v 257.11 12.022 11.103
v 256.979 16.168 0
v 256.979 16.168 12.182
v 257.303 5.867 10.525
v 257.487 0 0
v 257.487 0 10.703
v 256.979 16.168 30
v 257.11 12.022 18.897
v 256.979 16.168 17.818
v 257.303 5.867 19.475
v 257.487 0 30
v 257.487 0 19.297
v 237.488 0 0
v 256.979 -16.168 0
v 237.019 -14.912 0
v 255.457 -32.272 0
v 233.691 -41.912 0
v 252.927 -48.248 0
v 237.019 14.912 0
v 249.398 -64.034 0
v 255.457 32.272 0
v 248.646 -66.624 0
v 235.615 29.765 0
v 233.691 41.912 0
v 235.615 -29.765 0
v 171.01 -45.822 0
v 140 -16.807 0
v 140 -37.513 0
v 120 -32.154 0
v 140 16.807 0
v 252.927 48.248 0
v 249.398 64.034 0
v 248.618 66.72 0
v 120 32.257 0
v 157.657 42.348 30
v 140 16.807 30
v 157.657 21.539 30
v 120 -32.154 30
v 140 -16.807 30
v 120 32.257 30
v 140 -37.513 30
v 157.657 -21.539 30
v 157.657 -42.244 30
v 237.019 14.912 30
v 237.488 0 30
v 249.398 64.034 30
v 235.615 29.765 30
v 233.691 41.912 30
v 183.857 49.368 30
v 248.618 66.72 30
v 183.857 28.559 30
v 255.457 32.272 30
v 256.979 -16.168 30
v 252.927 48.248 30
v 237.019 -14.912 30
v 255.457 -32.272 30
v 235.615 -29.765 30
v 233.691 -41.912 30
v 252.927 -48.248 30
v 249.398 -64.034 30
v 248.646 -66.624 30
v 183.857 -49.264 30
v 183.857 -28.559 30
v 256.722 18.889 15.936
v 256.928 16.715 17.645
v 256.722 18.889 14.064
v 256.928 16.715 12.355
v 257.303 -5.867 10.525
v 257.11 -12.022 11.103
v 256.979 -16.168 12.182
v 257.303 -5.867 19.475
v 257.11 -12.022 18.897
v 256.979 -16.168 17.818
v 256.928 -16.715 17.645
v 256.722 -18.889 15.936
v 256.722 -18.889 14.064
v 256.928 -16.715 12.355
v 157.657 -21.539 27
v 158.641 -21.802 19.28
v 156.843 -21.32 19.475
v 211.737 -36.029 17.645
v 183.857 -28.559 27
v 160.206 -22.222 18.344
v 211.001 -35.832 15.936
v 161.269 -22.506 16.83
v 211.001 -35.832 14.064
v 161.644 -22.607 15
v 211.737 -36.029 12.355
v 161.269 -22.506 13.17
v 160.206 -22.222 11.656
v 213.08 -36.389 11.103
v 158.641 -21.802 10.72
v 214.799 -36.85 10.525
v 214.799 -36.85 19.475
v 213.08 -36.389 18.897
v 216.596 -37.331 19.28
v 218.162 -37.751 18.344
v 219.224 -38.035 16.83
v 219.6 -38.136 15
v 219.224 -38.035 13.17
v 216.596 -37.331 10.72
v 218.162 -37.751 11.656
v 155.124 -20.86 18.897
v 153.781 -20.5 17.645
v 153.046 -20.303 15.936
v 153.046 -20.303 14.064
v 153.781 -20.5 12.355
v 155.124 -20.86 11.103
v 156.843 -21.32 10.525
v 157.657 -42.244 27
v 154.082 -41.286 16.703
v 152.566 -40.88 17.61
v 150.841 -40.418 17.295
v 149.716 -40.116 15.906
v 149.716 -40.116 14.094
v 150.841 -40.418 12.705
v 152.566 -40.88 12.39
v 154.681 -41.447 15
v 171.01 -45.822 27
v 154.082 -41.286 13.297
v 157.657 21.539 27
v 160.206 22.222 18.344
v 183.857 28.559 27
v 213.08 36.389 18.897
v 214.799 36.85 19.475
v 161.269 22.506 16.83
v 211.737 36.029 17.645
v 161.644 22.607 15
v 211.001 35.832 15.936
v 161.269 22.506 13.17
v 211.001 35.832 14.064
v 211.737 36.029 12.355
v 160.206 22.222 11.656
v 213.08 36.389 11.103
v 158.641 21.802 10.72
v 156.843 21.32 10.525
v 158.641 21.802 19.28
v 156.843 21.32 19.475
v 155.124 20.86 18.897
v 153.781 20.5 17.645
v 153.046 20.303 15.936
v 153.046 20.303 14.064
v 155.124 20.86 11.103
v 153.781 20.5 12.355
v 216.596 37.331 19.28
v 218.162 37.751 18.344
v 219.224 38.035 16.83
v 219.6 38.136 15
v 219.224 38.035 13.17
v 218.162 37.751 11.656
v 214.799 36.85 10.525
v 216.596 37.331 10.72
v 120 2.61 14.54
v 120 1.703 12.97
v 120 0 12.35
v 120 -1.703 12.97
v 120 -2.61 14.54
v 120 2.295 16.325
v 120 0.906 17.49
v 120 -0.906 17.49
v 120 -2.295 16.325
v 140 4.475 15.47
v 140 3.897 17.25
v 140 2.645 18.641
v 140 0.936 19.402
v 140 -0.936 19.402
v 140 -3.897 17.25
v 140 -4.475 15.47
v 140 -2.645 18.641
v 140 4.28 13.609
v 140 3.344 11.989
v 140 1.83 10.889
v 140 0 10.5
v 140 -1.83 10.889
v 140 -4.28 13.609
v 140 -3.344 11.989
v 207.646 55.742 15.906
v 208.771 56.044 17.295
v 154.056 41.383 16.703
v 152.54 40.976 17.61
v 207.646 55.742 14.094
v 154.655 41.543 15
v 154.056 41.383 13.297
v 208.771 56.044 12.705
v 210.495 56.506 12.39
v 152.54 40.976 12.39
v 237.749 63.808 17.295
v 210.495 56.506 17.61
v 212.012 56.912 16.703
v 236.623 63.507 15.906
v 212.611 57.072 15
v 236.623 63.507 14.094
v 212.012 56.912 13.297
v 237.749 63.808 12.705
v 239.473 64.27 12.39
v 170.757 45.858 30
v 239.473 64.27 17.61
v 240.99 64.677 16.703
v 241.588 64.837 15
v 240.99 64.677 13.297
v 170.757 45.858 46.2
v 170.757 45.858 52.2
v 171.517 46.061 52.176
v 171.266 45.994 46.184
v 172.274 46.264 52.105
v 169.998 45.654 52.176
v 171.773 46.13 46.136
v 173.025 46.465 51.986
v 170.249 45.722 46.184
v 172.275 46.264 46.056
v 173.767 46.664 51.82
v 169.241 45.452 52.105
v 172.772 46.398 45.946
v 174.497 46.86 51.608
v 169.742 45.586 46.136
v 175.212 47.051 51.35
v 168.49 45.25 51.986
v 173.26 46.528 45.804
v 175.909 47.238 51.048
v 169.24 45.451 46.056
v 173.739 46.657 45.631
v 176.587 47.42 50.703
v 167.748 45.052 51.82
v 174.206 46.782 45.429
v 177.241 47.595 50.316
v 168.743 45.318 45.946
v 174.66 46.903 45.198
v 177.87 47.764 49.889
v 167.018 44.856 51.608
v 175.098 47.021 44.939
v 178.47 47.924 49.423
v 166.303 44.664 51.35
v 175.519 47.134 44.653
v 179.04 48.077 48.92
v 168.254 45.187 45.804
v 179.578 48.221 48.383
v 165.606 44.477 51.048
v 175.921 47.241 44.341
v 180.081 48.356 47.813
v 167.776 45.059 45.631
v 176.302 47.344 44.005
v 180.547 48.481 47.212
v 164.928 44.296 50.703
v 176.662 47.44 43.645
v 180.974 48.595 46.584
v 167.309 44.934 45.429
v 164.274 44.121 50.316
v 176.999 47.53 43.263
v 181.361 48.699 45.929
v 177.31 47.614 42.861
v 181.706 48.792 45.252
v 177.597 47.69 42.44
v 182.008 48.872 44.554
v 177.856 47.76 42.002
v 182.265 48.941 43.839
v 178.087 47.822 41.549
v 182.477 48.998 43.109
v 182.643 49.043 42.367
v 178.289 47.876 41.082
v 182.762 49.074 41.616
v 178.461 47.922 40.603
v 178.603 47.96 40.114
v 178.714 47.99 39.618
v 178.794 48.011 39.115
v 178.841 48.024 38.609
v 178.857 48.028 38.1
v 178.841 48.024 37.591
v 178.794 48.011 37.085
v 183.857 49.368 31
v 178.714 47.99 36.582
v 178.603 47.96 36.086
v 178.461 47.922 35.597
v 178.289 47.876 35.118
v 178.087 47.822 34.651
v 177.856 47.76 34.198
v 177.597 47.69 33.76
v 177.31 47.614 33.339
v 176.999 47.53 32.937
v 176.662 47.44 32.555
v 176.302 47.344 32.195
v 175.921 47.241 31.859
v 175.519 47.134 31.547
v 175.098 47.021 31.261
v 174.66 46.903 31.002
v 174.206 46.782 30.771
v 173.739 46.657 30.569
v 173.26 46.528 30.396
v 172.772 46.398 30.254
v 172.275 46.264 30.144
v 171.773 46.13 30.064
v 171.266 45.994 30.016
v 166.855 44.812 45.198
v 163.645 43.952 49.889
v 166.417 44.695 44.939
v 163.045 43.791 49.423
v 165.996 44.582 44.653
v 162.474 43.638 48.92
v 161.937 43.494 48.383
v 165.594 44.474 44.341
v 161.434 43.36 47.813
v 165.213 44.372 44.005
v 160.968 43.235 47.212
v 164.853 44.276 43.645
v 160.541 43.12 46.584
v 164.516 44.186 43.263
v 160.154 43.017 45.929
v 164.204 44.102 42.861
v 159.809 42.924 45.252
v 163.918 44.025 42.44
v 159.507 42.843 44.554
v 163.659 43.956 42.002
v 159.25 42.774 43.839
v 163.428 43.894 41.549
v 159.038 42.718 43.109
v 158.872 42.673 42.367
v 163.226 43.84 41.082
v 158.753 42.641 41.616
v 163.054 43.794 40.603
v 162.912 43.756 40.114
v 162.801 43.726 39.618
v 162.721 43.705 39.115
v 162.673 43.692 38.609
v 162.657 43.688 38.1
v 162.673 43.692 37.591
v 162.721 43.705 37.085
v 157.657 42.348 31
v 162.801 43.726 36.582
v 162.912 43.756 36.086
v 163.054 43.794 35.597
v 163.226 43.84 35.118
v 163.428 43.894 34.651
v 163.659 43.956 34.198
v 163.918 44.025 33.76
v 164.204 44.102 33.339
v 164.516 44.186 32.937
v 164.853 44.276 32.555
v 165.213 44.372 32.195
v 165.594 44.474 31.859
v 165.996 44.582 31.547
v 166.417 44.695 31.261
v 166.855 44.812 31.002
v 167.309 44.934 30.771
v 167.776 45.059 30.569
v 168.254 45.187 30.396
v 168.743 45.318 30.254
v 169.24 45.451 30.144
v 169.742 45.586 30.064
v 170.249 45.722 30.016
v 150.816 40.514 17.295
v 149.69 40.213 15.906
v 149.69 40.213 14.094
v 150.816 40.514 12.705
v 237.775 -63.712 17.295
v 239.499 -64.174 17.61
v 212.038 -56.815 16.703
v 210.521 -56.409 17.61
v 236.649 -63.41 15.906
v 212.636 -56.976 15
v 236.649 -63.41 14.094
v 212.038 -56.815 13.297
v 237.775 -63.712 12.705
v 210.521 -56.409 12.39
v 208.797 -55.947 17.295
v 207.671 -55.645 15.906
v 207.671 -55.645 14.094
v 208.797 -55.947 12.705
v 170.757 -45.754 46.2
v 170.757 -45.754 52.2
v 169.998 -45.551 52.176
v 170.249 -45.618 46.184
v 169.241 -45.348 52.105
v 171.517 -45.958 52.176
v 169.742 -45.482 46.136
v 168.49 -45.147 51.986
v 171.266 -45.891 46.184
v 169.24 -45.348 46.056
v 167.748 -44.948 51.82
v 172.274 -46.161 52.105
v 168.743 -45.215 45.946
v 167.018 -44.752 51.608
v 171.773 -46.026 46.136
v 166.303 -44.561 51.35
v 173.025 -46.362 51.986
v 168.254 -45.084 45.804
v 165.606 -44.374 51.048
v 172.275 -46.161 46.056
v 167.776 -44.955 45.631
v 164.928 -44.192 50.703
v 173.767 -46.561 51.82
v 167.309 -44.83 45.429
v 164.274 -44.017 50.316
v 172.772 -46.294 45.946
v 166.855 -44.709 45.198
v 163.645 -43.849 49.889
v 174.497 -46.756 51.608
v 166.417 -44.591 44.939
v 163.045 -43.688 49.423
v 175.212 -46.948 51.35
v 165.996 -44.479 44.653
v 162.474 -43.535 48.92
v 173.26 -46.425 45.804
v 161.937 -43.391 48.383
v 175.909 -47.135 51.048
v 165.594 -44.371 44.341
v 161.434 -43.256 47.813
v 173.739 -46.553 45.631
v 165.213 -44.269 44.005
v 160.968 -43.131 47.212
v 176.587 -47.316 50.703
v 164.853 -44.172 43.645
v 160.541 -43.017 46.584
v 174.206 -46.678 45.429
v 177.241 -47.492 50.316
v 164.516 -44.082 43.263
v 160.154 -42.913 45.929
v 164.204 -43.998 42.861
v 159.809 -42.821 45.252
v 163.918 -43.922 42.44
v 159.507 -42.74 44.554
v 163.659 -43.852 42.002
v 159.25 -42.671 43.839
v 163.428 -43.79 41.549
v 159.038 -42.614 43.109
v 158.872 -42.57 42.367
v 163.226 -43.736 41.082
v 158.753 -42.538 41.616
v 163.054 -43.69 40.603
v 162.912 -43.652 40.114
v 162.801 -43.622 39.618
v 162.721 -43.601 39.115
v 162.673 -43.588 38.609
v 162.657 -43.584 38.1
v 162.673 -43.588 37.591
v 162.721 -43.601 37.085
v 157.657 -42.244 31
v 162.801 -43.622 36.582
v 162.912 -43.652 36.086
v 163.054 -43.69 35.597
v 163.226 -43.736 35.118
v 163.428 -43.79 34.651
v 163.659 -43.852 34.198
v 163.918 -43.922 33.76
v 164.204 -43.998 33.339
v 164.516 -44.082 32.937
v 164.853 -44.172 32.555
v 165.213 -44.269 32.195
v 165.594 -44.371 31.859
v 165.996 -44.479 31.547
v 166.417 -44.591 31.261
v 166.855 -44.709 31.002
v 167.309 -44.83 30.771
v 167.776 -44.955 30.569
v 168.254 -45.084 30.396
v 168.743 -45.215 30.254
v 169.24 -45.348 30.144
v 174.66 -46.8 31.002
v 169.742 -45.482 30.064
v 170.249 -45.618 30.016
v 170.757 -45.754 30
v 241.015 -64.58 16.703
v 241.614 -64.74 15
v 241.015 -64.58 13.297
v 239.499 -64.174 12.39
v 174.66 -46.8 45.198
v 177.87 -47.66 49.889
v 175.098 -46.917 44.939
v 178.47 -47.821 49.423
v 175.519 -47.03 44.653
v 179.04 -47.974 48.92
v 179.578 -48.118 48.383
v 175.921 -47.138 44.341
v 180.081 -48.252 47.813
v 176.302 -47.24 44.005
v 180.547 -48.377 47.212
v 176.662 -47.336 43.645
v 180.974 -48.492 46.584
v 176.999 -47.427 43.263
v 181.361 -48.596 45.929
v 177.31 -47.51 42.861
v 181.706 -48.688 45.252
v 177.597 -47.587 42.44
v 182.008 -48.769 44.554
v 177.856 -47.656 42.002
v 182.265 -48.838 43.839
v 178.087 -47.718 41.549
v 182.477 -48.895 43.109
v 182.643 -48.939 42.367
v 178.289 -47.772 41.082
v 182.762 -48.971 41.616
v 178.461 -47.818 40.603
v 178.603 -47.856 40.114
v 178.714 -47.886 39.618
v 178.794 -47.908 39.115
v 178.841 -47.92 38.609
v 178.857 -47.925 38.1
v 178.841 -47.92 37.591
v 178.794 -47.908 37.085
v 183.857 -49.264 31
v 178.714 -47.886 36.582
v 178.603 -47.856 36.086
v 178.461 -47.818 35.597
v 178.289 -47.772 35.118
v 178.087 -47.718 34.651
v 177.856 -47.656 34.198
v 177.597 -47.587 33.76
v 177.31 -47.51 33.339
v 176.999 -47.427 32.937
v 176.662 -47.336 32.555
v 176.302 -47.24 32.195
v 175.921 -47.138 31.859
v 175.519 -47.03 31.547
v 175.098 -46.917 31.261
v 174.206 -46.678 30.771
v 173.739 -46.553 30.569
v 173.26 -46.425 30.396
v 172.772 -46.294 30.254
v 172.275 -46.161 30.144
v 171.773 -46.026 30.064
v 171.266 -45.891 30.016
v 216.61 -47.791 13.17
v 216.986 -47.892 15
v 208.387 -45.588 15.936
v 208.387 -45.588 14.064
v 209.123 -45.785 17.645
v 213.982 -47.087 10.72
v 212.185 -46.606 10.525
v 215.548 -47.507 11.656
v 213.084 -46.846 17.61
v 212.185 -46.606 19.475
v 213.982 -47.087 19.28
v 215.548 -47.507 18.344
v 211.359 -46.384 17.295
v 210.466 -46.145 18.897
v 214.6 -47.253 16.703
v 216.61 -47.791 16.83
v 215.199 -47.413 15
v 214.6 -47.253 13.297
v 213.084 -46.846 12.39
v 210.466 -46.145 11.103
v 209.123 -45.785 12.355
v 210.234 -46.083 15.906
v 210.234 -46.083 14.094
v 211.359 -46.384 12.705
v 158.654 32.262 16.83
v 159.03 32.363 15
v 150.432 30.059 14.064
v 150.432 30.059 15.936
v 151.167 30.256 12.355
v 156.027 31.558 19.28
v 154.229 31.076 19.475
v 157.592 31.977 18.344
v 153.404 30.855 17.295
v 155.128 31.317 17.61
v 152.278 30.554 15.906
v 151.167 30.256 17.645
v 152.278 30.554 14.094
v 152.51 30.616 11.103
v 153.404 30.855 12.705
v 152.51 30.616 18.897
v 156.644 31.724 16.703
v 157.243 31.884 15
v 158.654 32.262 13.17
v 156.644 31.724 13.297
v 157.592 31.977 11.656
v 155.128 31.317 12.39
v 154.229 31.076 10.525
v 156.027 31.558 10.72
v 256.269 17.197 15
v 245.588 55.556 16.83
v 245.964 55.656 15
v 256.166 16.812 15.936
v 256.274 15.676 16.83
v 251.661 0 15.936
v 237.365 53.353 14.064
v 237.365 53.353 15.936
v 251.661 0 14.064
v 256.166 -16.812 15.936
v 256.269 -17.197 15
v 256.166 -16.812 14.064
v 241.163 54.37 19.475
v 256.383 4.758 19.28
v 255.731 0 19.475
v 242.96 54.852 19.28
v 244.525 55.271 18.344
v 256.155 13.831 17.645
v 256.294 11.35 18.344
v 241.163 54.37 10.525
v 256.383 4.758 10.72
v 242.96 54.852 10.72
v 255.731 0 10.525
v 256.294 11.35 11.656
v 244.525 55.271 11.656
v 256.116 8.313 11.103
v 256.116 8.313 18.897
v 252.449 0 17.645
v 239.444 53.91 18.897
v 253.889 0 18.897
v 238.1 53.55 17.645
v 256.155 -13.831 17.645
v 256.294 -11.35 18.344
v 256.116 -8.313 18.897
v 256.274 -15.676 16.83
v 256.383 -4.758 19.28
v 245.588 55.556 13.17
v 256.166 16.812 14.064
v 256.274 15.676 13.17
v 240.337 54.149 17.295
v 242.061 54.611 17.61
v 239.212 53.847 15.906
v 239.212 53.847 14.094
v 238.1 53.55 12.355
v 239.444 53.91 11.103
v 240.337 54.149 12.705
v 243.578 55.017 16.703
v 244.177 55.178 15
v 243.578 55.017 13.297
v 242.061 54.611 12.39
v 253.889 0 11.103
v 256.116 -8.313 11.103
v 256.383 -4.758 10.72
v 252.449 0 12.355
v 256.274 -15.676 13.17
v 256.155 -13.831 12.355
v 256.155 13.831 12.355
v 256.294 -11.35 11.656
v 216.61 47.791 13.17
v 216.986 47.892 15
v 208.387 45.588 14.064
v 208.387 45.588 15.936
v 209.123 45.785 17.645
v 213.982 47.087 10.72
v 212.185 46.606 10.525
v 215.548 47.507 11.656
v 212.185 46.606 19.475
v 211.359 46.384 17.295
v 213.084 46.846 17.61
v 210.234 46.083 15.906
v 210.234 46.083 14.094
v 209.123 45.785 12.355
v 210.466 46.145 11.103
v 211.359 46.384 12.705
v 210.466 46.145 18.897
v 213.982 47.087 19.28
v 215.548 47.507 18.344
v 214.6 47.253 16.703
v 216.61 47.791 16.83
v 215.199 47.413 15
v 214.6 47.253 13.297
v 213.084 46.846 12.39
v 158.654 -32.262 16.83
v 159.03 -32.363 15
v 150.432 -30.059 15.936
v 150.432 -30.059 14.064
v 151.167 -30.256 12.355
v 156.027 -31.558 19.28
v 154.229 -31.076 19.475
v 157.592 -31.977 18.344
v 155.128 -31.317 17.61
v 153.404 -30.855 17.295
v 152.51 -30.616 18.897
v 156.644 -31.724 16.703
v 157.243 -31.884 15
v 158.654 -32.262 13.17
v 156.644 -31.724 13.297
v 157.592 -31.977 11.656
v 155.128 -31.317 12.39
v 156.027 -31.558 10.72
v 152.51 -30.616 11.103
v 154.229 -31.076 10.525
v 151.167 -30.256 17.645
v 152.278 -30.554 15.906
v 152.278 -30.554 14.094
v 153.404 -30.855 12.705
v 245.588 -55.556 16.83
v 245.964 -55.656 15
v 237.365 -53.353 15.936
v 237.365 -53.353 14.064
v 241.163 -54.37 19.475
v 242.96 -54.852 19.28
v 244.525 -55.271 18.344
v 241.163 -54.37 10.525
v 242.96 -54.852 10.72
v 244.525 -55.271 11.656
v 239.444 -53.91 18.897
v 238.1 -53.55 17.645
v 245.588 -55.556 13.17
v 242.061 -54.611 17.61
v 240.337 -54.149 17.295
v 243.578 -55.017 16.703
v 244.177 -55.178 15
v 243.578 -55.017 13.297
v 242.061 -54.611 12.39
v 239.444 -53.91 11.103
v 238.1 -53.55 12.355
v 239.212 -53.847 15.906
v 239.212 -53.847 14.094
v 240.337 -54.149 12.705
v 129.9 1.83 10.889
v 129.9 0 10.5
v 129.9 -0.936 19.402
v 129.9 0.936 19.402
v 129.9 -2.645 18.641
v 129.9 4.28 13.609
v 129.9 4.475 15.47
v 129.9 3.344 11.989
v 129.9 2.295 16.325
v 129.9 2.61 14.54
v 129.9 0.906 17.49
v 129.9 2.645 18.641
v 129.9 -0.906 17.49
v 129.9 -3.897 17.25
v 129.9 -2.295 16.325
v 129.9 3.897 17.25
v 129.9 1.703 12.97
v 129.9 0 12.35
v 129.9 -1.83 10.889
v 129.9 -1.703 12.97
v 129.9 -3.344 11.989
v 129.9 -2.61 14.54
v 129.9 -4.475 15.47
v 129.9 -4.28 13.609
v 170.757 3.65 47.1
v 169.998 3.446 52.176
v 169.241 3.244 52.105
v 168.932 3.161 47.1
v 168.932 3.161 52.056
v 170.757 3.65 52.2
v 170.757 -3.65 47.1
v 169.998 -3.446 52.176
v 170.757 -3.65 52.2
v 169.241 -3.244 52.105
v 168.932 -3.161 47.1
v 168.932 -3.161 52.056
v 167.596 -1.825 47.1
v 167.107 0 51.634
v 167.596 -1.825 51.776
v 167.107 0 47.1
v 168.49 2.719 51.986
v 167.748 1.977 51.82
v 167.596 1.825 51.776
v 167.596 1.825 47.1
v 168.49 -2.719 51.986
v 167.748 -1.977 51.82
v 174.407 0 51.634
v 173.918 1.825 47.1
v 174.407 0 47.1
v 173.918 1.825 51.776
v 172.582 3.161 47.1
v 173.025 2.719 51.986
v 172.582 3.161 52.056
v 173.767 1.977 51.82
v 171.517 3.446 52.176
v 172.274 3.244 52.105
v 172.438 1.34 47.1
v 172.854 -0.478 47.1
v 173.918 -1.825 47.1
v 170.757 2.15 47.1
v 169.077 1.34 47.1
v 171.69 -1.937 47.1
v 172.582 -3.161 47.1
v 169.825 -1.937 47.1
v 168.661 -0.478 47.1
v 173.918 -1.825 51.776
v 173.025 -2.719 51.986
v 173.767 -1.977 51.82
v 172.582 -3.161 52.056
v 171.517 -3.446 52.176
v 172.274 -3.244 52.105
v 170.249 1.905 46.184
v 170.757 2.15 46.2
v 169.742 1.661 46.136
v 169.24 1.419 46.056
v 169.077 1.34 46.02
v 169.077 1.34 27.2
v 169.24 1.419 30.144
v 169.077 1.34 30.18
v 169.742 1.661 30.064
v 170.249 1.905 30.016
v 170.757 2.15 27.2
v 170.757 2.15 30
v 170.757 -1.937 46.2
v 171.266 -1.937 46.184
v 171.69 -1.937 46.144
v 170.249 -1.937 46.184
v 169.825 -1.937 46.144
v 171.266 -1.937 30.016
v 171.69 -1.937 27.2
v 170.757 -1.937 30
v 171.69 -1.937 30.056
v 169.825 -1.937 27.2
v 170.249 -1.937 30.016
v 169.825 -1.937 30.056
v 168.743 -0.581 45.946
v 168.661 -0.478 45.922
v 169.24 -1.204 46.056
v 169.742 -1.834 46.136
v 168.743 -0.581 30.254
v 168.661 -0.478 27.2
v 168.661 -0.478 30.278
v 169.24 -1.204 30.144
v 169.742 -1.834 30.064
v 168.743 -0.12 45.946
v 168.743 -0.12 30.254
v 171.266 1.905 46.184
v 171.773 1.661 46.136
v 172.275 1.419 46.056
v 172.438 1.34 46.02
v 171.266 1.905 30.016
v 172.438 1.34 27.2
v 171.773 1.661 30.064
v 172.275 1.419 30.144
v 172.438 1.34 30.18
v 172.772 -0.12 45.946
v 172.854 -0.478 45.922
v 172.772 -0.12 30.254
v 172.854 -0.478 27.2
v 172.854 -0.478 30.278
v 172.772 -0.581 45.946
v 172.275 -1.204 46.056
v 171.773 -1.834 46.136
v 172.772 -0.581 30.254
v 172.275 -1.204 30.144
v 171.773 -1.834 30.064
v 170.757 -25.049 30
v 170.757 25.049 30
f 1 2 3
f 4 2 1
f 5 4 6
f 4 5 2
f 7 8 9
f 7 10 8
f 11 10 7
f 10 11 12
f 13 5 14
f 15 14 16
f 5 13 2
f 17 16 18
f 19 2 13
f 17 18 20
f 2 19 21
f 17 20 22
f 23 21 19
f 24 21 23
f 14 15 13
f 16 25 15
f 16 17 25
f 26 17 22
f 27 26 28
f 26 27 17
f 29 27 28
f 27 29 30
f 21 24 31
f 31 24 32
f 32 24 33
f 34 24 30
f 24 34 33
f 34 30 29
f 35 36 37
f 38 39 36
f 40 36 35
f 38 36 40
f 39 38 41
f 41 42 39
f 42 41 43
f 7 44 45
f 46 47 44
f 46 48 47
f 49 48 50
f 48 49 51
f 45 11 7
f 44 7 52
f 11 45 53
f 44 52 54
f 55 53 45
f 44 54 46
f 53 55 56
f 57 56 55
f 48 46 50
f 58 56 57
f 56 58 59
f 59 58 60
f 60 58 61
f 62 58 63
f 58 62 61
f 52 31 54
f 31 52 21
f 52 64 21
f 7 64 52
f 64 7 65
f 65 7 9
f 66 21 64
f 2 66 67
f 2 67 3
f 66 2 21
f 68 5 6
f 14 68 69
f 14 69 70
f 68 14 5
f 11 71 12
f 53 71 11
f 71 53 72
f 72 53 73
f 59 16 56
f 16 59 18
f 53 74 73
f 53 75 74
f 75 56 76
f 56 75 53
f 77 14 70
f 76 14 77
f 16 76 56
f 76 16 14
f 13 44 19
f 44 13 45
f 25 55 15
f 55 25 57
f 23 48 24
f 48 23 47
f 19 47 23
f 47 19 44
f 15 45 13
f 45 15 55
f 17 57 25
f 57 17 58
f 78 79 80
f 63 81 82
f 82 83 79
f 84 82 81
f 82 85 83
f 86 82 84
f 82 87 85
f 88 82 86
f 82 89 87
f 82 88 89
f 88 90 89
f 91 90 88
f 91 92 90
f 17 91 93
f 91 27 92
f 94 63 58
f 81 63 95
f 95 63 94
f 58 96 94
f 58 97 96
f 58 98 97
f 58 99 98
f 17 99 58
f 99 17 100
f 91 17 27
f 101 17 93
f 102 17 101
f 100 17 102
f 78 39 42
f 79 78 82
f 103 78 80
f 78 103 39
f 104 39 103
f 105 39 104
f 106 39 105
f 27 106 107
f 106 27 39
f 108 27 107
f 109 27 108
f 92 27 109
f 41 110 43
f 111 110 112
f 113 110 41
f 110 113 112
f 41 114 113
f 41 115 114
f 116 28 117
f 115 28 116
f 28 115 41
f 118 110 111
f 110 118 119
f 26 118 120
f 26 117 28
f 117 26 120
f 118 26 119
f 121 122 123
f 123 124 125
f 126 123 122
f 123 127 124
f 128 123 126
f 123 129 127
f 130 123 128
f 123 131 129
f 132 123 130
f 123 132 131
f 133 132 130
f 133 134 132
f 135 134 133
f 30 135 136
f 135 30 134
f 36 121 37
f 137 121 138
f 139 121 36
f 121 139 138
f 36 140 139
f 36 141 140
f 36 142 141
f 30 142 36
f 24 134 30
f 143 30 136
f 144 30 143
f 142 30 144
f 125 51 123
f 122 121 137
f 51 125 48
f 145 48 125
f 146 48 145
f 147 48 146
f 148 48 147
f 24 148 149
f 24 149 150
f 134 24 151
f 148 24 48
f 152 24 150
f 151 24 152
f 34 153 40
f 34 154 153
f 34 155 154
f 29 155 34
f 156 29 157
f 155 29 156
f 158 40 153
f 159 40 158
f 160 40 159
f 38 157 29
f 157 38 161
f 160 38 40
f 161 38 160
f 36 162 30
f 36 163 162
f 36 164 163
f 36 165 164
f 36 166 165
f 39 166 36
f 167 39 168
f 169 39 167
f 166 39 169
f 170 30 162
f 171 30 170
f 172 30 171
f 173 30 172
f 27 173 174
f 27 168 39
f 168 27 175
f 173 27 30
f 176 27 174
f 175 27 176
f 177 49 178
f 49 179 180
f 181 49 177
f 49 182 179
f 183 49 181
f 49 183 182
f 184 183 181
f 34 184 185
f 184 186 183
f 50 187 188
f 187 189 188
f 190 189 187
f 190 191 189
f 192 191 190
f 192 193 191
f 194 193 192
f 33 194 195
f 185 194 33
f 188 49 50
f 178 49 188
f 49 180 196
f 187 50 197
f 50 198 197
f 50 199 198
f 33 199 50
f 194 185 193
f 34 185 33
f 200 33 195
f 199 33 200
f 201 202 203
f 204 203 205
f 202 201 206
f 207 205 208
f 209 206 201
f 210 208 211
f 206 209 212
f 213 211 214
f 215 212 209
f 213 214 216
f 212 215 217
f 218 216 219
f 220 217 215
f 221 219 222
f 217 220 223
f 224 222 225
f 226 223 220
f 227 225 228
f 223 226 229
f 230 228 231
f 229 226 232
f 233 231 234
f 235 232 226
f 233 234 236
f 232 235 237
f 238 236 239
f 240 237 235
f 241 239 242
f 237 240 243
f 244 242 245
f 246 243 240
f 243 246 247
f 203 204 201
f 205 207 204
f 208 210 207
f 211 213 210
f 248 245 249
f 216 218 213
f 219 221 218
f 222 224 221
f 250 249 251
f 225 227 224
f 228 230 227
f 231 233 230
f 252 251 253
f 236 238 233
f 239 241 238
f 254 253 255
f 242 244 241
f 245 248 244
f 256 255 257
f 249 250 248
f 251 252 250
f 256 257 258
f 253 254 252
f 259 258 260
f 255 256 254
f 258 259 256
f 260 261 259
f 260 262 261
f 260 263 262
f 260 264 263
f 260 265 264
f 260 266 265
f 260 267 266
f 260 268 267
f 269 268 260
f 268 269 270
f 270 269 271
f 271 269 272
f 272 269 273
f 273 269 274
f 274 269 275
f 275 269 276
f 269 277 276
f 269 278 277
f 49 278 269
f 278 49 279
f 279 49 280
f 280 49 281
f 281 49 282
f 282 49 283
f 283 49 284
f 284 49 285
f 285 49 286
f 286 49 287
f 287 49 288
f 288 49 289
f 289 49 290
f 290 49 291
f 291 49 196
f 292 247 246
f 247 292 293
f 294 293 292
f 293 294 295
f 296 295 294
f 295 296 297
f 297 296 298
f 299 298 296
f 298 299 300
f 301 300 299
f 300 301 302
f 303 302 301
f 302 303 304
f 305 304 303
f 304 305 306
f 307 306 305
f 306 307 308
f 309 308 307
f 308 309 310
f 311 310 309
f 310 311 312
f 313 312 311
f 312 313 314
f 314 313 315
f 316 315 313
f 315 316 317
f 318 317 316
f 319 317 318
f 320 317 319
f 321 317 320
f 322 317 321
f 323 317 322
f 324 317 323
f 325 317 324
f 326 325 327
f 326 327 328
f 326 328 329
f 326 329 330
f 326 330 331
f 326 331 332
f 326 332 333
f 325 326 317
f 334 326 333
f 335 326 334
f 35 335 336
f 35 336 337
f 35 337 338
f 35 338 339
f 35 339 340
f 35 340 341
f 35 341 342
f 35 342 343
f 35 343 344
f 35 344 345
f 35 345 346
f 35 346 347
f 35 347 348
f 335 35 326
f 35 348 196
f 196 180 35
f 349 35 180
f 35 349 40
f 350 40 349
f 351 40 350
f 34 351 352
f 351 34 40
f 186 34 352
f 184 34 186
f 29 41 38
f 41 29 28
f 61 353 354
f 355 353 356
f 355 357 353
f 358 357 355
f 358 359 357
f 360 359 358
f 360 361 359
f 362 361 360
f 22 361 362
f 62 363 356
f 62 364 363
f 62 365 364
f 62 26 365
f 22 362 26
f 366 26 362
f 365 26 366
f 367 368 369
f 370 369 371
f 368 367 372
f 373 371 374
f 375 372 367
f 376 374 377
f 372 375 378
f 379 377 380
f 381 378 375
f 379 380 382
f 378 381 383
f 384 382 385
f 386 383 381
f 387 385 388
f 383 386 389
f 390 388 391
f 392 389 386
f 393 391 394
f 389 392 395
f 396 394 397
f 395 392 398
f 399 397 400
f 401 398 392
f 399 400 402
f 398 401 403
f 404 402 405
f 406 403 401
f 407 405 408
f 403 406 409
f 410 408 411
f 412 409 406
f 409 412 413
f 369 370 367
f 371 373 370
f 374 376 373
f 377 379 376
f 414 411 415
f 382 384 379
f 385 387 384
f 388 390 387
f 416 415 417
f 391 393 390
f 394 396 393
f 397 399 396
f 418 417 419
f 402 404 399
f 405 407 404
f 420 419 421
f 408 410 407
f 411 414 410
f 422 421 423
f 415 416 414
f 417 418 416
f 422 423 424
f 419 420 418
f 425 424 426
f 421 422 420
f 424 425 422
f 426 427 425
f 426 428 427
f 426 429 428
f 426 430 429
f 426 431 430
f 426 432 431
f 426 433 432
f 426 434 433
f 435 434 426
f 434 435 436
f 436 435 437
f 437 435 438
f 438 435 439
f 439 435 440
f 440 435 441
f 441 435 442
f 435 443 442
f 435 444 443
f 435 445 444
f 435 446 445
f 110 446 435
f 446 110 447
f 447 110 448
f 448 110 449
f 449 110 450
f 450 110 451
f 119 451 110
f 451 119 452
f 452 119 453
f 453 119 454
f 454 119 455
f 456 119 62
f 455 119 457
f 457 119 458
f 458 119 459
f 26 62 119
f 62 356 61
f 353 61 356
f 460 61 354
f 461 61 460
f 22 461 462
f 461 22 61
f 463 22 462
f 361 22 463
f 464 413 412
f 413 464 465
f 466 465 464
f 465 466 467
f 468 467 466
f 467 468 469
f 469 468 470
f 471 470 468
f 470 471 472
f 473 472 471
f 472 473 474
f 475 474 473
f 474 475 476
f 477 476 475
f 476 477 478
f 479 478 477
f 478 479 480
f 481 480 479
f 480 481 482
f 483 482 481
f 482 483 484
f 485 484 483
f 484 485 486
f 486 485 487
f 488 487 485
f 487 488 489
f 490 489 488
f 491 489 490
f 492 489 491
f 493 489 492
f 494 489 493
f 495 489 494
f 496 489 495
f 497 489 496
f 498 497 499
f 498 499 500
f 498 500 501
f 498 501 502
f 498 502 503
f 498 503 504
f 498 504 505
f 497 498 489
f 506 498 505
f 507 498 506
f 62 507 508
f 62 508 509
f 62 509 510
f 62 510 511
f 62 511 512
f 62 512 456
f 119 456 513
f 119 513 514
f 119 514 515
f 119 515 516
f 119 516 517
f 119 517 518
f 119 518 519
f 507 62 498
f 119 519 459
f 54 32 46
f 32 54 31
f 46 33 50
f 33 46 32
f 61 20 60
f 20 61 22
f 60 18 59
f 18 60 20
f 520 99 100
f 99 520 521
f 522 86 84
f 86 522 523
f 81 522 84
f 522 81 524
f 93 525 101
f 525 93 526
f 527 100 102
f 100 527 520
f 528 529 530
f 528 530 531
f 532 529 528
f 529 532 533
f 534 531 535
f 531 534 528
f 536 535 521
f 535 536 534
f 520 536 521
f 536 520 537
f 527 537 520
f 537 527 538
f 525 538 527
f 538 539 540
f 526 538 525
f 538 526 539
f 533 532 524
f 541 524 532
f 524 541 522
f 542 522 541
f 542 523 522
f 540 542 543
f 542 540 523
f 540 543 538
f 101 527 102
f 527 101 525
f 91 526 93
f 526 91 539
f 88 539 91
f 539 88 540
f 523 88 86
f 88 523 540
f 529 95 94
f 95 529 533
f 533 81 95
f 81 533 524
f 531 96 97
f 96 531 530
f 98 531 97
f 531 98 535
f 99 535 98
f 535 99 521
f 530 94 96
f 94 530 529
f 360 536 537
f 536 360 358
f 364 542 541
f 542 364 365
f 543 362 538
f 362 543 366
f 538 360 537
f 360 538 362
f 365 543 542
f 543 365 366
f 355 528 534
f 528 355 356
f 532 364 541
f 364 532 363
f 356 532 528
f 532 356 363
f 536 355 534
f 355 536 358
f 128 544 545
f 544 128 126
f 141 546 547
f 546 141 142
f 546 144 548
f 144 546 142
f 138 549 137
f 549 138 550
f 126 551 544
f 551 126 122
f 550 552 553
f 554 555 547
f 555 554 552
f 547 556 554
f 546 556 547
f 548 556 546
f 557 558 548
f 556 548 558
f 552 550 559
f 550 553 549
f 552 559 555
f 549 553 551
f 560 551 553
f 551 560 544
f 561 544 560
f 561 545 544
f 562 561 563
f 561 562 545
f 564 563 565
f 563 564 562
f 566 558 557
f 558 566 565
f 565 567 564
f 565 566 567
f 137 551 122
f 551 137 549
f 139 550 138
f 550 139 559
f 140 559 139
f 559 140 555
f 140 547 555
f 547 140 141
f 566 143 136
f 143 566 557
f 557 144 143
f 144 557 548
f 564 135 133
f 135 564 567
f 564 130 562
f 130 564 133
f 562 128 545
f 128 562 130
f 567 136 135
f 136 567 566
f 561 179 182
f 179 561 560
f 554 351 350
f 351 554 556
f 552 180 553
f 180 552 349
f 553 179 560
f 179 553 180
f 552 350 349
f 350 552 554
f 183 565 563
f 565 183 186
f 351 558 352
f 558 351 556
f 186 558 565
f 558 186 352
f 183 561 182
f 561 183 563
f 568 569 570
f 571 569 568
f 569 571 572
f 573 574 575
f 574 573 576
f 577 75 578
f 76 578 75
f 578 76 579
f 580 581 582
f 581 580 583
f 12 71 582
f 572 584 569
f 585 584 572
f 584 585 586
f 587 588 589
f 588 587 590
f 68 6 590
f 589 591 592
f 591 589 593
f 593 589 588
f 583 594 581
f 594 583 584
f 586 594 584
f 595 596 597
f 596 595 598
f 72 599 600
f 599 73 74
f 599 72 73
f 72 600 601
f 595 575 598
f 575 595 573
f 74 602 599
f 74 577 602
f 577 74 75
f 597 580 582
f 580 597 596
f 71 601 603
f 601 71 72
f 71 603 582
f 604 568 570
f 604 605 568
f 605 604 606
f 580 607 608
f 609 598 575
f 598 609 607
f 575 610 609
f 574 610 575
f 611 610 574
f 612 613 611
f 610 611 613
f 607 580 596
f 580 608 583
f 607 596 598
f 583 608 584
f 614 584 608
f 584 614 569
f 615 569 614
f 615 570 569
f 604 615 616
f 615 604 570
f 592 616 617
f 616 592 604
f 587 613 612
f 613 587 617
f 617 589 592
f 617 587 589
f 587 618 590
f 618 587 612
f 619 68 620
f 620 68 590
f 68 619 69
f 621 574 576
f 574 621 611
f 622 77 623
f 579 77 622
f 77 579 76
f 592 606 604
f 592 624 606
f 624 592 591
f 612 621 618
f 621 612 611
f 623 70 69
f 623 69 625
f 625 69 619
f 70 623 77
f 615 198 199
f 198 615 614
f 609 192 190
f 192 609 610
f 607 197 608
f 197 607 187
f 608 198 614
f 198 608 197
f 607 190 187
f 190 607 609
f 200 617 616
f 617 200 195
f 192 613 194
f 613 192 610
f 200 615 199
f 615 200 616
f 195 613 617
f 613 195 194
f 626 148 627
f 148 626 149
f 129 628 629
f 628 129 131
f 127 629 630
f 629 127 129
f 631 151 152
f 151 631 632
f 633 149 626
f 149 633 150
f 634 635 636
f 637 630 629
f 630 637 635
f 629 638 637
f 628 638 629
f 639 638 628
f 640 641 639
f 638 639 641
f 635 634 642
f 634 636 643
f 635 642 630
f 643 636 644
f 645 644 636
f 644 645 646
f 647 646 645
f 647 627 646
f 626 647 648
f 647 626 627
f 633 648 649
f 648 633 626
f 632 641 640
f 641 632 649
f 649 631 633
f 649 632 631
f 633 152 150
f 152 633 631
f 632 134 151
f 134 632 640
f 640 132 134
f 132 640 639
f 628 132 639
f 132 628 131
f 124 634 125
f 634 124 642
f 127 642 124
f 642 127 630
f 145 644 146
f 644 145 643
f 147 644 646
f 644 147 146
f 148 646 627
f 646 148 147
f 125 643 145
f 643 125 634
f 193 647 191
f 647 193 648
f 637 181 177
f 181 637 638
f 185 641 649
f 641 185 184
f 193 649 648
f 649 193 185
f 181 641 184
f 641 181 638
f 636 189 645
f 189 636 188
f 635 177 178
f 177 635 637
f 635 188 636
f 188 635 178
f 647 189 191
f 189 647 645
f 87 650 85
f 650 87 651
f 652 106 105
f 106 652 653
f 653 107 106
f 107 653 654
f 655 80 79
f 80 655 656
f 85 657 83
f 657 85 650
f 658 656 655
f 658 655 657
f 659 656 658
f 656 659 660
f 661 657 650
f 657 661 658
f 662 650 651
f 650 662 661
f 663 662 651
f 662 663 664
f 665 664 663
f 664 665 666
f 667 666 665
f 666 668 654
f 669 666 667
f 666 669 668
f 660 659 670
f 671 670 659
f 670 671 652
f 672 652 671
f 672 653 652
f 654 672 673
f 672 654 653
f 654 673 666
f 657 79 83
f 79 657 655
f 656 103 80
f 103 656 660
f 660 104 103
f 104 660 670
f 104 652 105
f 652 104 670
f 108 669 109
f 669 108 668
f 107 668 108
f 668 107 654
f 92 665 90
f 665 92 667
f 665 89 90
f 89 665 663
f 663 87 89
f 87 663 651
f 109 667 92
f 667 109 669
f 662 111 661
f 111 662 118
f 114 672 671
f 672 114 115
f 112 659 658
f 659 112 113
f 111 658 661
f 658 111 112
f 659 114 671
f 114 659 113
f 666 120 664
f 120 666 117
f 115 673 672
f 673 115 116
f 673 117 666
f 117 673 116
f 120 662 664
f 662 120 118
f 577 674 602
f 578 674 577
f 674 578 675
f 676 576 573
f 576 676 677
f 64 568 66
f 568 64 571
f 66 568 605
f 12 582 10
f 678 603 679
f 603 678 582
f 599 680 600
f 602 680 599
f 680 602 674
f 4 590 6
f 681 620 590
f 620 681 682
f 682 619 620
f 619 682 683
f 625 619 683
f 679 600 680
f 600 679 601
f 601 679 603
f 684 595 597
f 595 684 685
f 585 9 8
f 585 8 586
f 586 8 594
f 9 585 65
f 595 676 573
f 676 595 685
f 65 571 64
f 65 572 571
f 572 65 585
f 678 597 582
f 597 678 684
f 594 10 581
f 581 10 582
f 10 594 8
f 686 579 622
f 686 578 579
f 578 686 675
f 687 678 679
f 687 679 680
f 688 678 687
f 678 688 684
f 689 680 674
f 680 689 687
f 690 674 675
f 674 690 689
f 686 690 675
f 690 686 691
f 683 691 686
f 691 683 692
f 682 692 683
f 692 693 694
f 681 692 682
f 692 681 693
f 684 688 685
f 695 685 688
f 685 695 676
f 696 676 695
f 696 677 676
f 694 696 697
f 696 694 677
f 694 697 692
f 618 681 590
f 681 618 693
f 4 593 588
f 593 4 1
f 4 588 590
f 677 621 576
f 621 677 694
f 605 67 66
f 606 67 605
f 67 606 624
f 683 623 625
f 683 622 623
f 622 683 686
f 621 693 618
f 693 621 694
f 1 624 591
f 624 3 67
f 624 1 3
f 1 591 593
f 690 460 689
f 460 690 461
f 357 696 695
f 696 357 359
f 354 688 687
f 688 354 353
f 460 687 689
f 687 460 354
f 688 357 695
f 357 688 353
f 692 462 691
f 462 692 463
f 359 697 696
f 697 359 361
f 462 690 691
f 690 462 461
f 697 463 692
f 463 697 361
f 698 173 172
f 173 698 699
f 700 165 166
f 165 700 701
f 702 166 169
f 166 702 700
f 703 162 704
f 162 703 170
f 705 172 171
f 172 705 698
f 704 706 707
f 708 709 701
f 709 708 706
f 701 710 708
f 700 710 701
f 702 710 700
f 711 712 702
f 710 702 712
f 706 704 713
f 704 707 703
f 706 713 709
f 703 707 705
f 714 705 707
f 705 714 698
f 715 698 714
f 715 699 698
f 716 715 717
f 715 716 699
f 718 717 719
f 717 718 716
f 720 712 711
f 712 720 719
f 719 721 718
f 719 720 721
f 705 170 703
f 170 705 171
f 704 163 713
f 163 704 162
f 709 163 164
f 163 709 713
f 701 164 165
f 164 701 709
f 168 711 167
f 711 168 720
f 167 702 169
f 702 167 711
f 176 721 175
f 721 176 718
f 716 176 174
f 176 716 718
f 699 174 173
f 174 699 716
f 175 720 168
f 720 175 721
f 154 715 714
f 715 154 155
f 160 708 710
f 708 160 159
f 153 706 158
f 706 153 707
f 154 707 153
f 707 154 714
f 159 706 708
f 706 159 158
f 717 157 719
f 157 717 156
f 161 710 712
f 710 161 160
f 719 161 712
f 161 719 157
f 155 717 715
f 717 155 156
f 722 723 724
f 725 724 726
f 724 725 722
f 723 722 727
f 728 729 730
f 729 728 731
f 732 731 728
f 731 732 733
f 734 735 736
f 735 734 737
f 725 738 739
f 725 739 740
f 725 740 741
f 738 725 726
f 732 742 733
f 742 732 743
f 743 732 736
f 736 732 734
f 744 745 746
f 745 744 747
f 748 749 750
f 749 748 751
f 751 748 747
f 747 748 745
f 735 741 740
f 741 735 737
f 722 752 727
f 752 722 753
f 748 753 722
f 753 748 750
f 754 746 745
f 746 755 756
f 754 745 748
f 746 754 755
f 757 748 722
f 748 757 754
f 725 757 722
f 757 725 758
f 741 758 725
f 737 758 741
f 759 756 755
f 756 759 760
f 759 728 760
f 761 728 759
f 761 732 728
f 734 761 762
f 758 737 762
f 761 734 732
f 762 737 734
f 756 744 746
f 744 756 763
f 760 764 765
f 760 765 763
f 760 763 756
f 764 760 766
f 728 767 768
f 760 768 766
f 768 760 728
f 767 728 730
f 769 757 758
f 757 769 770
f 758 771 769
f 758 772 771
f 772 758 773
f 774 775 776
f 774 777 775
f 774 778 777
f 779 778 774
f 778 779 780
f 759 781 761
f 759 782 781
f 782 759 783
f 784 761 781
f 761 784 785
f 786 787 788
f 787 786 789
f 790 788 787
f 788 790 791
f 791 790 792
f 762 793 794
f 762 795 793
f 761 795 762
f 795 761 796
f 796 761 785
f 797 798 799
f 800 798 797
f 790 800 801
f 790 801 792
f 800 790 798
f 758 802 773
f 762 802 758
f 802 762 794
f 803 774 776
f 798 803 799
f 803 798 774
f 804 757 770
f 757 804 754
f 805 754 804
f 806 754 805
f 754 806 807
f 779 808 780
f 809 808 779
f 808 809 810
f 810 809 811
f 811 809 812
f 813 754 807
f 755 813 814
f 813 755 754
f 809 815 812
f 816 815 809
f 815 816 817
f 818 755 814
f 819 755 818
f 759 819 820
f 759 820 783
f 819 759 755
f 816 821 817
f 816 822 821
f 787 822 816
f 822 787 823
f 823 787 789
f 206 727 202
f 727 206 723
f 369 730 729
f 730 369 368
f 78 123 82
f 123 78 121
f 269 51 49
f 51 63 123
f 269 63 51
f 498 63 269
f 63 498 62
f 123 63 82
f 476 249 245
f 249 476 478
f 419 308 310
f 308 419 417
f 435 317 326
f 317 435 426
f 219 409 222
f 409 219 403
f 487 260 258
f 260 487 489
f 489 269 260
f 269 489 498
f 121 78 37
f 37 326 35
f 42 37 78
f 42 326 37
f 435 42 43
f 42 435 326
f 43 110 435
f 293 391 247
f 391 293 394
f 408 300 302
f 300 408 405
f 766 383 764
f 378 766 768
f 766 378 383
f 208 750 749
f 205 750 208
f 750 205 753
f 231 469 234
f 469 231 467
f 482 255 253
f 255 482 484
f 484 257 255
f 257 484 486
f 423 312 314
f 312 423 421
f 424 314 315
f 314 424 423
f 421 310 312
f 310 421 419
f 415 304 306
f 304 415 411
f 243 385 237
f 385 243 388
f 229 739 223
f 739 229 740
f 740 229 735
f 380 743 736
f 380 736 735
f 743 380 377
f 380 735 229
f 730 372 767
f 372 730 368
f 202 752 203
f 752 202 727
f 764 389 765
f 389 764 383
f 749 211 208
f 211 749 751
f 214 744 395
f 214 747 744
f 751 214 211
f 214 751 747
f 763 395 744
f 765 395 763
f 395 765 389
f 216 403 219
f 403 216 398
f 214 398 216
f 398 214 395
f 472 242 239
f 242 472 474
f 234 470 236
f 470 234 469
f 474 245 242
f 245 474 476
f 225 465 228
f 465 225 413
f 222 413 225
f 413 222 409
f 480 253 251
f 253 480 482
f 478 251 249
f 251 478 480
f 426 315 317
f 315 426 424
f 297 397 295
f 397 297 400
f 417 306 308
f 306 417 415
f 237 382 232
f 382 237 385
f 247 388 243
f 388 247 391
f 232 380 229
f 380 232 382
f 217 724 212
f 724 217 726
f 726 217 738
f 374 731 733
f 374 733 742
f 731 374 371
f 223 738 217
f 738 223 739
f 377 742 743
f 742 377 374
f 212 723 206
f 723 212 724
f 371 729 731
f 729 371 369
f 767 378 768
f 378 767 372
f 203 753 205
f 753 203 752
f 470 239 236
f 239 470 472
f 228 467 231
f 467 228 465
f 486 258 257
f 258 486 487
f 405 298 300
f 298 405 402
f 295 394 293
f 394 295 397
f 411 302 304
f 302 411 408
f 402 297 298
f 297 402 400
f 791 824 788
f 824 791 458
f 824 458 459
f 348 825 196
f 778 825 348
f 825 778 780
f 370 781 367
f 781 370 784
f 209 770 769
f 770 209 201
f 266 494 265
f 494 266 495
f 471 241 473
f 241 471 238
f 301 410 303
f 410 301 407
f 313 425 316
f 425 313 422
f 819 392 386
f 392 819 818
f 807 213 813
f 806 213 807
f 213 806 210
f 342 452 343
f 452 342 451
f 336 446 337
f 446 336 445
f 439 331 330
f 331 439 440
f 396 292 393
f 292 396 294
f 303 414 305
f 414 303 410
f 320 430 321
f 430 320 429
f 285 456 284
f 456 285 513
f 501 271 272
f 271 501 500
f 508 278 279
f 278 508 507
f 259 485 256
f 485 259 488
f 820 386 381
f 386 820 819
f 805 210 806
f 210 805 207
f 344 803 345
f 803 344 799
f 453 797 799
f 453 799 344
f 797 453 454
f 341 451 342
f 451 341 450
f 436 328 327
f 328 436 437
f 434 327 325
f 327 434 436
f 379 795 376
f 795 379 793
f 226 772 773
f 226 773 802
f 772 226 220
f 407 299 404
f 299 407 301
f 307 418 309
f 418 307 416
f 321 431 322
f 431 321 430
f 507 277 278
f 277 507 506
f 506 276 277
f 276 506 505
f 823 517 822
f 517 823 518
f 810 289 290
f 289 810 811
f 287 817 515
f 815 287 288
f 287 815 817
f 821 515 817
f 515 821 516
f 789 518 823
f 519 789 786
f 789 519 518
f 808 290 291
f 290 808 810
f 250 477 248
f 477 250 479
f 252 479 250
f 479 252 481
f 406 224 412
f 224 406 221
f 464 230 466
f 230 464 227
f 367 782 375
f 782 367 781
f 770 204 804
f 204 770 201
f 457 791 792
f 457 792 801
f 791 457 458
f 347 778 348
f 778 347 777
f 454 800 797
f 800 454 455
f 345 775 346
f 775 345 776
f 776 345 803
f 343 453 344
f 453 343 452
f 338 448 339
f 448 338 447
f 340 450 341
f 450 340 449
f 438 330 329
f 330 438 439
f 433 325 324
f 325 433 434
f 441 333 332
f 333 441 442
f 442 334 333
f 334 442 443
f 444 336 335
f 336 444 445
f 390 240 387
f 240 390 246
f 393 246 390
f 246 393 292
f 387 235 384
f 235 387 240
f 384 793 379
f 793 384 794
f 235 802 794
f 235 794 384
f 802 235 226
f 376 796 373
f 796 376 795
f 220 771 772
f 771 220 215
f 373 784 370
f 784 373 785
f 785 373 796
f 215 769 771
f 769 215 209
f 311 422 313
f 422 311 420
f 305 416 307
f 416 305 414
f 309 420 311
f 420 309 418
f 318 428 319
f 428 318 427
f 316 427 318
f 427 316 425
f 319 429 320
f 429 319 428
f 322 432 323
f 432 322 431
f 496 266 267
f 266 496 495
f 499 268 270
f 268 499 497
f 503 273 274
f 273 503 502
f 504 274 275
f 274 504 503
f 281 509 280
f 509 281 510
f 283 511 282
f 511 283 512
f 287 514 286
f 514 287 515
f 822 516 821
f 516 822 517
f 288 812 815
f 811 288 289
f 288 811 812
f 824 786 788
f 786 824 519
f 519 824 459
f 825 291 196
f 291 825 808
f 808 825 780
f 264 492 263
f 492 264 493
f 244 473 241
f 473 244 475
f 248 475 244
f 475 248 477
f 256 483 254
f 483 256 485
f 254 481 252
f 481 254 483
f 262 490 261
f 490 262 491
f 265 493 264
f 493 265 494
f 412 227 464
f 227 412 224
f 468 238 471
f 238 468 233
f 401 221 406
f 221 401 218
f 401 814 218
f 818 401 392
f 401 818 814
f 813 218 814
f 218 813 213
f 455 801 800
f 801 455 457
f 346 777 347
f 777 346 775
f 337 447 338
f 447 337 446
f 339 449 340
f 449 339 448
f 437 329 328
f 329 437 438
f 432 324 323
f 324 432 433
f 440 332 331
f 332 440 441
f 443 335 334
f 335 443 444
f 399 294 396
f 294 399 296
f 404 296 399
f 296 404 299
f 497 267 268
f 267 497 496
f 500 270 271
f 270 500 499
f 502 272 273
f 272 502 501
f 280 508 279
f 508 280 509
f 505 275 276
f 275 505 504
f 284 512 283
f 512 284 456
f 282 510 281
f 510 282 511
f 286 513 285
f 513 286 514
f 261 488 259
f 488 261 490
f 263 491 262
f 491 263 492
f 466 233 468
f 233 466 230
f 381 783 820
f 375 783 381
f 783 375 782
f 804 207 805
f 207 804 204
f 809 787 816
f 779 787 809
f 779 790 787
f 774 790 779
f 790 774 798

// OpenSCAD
intersection() {
	union() {
		difference() {
			intersection() {
				intersection() {
					union() {
						difference() {
							union() {
								cube(size = 0);
								translate(v = [0, 0, 0]) {
									cylinder($fn = 100, d = 514.9750000000, h = 30);
								}
							}
							translate(v = [0, 0, -0.2000000000]) {
								cylinder($fn = 100, d = 474.9750000000, h = 40.4000000000);
							}
						}
						rotate(a = [0, 0, -15.0000000000]) {
							translate(v = [135.0000000000, 0, 0]) {
								cube(size = [194.9750000000, 20, 30]);
							}
						}
						rotate(a = [0, 0, 15.0000000000]) {
							translate(v = [135.0000000000, 0, 0]) {
								translate(v = [0, -20, 0]) {
									cube(size = [194.9750000000, 21, 30]);
								}
							}
						}
						translate(v = [120.0000000000, 0, 0]) {
							translate(v = [0, -50, 0]) {
								cube(size = [20, 100, 30]);
							}
						}
						translate(v = [0, 0, 20]) {
							rotate(a = [0, 0, -30.0000000000]) {
								translate(v = [152.0000000000, 0, 0]) {
									difference() {
										cube(size = [18.0000000000, 15.0000000000, 18.0000000000]);
										translate(v = [9.0000000000, 10.2000000000, 9.0000000000]) {
											rotate(a = [90, 0, 0]) {
												cylinder($fn = 100, d = 5.3000000000, h = 20);
											}
										}
										translate(v = [9.0000000000, 30.0000000000, 9.0000000000]) {
											rotate(a = [90, 0, 0]) {
												cylinder($fn = 100, d = 9.0000000000, h = 20);
											}
										}
									}
								}
							}
						}
						translate(v = [0, 0, 20]) {
							rotate(a = [0, 0, 30.0000000000]) {
								translate(v = [152.0000000000, 0, 0]) {
									translate(v = [0, -10.0000000000, 0]) {
										difference() {
											cube(size = [18.0000000000, 9.8000000000, 18.0000000000]);
											translate(v = [9.0000000000, 10.2000000000, 9.0000000000]) {
												rotate(a = [90, 0, 0]) {
													cylinder($fn = 100, d = 5.3000000000, h = 20);
												}
											}
											translate(v = [9.0000000000, 10, 9.0000000000]) {
												rotate(a = [0, -90, 0]) {
													cylinder(d = 2, h = 3);
												}
											}
										}
									}
								}
							}
						}
					}
					translate(v = [0, 0, -250]) {
						hull() {
							rotate(a = [0, 0, 15.0000000000]) {
								cube(size = [500, 0.1000000000, 500]);
							}
							rotate(a = [0, 0, -15.0000000000]) {
								cube(size = [500, 0.1000000000, 500]);
							}
						}
					}
				}
				cylinder($fn = 100, d = 514.9750000000, h = 100);
			}
			mirror(v = [0, 0, 0]) {
				translate(v = [0, 0, 15.0000000000]) {
					rotate(a = [0, 0, -15.0000000000]) {
						translate(v = [217.4875000000, 10, 0]) {
							rotate(a = [-90,  0,  0]) {
								union() {
									cube(size = 0);
									translate(v = [0, 0, -0.1000000000]) {
										cylinder(d = 9.0000000000, h = 25.2000000000);
									}
									translate(v = [0, 0, -30]) {
										cylinder(d = 5.3000000000, h = 30);
									}
								}
							}
						}
					}
					rotate(a = [0, 0, 15.0000000000]) {
						translate(v = [157.4875000000, -10, 0]) {
							rotate(a = [90, 0, 0]) {
								union() {
									cube(size = 0);
									translate(v = [0, 0, -0.1000000000]) {
										cylinder(d = 9.0000000000, h = 25.2000000000);
									}
									translate(v = [0, 0, -30]) {
										cylinder(d = 5.3000000000, h = 30);
									}
								}
							}
						}
					}
					rotate(a = [0, 0, 15.0000000000]) {
						translate(v = [247.4875000000, -10, 0]) {
							rotate(a = [90, 0, 0]) {
								union() {
									cube(size = 0);
									translate(v = [0, 0, -0.1000000000]) {
										cylinder(d = 9.0000000000, h = 105.2000000000);
									}
									translate(v = [0, 0, -30]) {
										cylinder(d = 5.3000000000, h = 30);
									}
								}
							}
						}
					}
				}
			}
			mirror(v = [0, 180, 0]) {
				translate(v = [0, 0, 15.0000000000]) {
					rotate(a = [0, 0, -15.0000000000]) {
						translate(v = [217.4875000000, 10, 0]) {
							rotate(a = [-90,  0,  0]) {
								union() {
									cube(size = 0);
									translate(v = [0, 0, -0.1000000000]) {
										cylinder(d = 9.0000000000, h = 25.2000000000);
									}
									translate(v = [0, 0, -30]) {
										cylinder(d = 5.3000000000, h = 30);
									}
								}
							}
						}
					}
					rotate(a = [0, 0, 15.0000000000]) {
						translate(v = [157.4875000000, -10, 0]) {
							rotate(a = [90, 0, 0]) {
								union() {
									cube(size = 0);
									translate(v = [0, 0, -0.1000000000]) {
										cylinder(d = 9.0000000000, h = 25.2000000000);
									}
									translate(v = [0, 0, -30]) {
										cylinder(d = 5.3000000000, h = 30);
									}
								}
							}
						}
					}
					rotate(a = [0, 0, 15.0000000000]) {
						translate(v = [247.4875000000, -10, 0]) {
							rotate(a = [90, 0, 0]) {
								union() {
									cube(size = 0);
									translate(v = [0, 0, -0.1000000000]) {
										cylinder(d = 9.0000000000, h = 105.2000000000);
									}
									translate(v = [0, 0, -30]) {
										cylinder(d = 5.3000000000, h = 30);
									}
								}
							}
						}
					}
				}
			}
			translate(v = [130.0000000000, 0, 15.0000000000]) {
				rotate(a = [ 0,90, 0]) {
					union() {
						cube(size = 0);
						translate(v = [0, 0, -0.1000000000]) {
							cylinder(d = 9.0000000000, h = 25.2000000000);
						}
						translate(v = [0, 0, -30]) {
							cylinder(d = 5.3000000000, h = 30);
						}
					}
				}
			}
		}
		translate(v = [170.7574488218, -75, 30]) {
			rotate(a = [0, 0, 90]) {
				union() {
					difference() {
						hull() {
							translate(v = [0, -13.1000000000, -3]) {
								cube(size = [150, 26.2000000000, 4]);
								translate(v = [0, 13.1000000000, 13.1000000000]) {
									rotate(a = [0, 90, 0]) {
										cylinder($fn = 100, d = 24.2000000000, h = 150);
									}
								}
							}
						}
						translate(v = [0, -10.1000000000, -2]) {
							translate(v = [0, 10.1000000000, 10.1000000000]) {
								rotate(a = [0, 90, 0]) {
									cylinder($fn = 100, d = 16.2000000000, h = 151);
								}
							}
						}
						translate(v = [75.0000000000, 0, 17.2000000000]) {
							rotate(a = [0,0,0]) {
								union() {
									cube(size = 0);
									translate(v = [0, 0, -0.1000000000]) {
										cylinder(d = 7.3000000000, h = 24.2000000000);
									}
									translate(v = [0, 0, -29]) {
										cylinder(d = 4.3000000000, h = 29);
									}
								}
							}
						}
					}
					translate(v = [70.0000000000, -5, -3]) {
						cube(size = [10, 10, 0.2000000000]);
					}
				}
			}
		}
	}
	translate(v = [0, 0, -250]) {
		hull() {
			rotate(a = [0, 0, 15.0000000000]) {
				cube(size = [500, 0.1000000000, 500]);
			}
			rotate(a = [0, 0, -15.0000000000]) {
				cube(size = [500, 0.1000000000, 500]);
			}
		}
	}
}
